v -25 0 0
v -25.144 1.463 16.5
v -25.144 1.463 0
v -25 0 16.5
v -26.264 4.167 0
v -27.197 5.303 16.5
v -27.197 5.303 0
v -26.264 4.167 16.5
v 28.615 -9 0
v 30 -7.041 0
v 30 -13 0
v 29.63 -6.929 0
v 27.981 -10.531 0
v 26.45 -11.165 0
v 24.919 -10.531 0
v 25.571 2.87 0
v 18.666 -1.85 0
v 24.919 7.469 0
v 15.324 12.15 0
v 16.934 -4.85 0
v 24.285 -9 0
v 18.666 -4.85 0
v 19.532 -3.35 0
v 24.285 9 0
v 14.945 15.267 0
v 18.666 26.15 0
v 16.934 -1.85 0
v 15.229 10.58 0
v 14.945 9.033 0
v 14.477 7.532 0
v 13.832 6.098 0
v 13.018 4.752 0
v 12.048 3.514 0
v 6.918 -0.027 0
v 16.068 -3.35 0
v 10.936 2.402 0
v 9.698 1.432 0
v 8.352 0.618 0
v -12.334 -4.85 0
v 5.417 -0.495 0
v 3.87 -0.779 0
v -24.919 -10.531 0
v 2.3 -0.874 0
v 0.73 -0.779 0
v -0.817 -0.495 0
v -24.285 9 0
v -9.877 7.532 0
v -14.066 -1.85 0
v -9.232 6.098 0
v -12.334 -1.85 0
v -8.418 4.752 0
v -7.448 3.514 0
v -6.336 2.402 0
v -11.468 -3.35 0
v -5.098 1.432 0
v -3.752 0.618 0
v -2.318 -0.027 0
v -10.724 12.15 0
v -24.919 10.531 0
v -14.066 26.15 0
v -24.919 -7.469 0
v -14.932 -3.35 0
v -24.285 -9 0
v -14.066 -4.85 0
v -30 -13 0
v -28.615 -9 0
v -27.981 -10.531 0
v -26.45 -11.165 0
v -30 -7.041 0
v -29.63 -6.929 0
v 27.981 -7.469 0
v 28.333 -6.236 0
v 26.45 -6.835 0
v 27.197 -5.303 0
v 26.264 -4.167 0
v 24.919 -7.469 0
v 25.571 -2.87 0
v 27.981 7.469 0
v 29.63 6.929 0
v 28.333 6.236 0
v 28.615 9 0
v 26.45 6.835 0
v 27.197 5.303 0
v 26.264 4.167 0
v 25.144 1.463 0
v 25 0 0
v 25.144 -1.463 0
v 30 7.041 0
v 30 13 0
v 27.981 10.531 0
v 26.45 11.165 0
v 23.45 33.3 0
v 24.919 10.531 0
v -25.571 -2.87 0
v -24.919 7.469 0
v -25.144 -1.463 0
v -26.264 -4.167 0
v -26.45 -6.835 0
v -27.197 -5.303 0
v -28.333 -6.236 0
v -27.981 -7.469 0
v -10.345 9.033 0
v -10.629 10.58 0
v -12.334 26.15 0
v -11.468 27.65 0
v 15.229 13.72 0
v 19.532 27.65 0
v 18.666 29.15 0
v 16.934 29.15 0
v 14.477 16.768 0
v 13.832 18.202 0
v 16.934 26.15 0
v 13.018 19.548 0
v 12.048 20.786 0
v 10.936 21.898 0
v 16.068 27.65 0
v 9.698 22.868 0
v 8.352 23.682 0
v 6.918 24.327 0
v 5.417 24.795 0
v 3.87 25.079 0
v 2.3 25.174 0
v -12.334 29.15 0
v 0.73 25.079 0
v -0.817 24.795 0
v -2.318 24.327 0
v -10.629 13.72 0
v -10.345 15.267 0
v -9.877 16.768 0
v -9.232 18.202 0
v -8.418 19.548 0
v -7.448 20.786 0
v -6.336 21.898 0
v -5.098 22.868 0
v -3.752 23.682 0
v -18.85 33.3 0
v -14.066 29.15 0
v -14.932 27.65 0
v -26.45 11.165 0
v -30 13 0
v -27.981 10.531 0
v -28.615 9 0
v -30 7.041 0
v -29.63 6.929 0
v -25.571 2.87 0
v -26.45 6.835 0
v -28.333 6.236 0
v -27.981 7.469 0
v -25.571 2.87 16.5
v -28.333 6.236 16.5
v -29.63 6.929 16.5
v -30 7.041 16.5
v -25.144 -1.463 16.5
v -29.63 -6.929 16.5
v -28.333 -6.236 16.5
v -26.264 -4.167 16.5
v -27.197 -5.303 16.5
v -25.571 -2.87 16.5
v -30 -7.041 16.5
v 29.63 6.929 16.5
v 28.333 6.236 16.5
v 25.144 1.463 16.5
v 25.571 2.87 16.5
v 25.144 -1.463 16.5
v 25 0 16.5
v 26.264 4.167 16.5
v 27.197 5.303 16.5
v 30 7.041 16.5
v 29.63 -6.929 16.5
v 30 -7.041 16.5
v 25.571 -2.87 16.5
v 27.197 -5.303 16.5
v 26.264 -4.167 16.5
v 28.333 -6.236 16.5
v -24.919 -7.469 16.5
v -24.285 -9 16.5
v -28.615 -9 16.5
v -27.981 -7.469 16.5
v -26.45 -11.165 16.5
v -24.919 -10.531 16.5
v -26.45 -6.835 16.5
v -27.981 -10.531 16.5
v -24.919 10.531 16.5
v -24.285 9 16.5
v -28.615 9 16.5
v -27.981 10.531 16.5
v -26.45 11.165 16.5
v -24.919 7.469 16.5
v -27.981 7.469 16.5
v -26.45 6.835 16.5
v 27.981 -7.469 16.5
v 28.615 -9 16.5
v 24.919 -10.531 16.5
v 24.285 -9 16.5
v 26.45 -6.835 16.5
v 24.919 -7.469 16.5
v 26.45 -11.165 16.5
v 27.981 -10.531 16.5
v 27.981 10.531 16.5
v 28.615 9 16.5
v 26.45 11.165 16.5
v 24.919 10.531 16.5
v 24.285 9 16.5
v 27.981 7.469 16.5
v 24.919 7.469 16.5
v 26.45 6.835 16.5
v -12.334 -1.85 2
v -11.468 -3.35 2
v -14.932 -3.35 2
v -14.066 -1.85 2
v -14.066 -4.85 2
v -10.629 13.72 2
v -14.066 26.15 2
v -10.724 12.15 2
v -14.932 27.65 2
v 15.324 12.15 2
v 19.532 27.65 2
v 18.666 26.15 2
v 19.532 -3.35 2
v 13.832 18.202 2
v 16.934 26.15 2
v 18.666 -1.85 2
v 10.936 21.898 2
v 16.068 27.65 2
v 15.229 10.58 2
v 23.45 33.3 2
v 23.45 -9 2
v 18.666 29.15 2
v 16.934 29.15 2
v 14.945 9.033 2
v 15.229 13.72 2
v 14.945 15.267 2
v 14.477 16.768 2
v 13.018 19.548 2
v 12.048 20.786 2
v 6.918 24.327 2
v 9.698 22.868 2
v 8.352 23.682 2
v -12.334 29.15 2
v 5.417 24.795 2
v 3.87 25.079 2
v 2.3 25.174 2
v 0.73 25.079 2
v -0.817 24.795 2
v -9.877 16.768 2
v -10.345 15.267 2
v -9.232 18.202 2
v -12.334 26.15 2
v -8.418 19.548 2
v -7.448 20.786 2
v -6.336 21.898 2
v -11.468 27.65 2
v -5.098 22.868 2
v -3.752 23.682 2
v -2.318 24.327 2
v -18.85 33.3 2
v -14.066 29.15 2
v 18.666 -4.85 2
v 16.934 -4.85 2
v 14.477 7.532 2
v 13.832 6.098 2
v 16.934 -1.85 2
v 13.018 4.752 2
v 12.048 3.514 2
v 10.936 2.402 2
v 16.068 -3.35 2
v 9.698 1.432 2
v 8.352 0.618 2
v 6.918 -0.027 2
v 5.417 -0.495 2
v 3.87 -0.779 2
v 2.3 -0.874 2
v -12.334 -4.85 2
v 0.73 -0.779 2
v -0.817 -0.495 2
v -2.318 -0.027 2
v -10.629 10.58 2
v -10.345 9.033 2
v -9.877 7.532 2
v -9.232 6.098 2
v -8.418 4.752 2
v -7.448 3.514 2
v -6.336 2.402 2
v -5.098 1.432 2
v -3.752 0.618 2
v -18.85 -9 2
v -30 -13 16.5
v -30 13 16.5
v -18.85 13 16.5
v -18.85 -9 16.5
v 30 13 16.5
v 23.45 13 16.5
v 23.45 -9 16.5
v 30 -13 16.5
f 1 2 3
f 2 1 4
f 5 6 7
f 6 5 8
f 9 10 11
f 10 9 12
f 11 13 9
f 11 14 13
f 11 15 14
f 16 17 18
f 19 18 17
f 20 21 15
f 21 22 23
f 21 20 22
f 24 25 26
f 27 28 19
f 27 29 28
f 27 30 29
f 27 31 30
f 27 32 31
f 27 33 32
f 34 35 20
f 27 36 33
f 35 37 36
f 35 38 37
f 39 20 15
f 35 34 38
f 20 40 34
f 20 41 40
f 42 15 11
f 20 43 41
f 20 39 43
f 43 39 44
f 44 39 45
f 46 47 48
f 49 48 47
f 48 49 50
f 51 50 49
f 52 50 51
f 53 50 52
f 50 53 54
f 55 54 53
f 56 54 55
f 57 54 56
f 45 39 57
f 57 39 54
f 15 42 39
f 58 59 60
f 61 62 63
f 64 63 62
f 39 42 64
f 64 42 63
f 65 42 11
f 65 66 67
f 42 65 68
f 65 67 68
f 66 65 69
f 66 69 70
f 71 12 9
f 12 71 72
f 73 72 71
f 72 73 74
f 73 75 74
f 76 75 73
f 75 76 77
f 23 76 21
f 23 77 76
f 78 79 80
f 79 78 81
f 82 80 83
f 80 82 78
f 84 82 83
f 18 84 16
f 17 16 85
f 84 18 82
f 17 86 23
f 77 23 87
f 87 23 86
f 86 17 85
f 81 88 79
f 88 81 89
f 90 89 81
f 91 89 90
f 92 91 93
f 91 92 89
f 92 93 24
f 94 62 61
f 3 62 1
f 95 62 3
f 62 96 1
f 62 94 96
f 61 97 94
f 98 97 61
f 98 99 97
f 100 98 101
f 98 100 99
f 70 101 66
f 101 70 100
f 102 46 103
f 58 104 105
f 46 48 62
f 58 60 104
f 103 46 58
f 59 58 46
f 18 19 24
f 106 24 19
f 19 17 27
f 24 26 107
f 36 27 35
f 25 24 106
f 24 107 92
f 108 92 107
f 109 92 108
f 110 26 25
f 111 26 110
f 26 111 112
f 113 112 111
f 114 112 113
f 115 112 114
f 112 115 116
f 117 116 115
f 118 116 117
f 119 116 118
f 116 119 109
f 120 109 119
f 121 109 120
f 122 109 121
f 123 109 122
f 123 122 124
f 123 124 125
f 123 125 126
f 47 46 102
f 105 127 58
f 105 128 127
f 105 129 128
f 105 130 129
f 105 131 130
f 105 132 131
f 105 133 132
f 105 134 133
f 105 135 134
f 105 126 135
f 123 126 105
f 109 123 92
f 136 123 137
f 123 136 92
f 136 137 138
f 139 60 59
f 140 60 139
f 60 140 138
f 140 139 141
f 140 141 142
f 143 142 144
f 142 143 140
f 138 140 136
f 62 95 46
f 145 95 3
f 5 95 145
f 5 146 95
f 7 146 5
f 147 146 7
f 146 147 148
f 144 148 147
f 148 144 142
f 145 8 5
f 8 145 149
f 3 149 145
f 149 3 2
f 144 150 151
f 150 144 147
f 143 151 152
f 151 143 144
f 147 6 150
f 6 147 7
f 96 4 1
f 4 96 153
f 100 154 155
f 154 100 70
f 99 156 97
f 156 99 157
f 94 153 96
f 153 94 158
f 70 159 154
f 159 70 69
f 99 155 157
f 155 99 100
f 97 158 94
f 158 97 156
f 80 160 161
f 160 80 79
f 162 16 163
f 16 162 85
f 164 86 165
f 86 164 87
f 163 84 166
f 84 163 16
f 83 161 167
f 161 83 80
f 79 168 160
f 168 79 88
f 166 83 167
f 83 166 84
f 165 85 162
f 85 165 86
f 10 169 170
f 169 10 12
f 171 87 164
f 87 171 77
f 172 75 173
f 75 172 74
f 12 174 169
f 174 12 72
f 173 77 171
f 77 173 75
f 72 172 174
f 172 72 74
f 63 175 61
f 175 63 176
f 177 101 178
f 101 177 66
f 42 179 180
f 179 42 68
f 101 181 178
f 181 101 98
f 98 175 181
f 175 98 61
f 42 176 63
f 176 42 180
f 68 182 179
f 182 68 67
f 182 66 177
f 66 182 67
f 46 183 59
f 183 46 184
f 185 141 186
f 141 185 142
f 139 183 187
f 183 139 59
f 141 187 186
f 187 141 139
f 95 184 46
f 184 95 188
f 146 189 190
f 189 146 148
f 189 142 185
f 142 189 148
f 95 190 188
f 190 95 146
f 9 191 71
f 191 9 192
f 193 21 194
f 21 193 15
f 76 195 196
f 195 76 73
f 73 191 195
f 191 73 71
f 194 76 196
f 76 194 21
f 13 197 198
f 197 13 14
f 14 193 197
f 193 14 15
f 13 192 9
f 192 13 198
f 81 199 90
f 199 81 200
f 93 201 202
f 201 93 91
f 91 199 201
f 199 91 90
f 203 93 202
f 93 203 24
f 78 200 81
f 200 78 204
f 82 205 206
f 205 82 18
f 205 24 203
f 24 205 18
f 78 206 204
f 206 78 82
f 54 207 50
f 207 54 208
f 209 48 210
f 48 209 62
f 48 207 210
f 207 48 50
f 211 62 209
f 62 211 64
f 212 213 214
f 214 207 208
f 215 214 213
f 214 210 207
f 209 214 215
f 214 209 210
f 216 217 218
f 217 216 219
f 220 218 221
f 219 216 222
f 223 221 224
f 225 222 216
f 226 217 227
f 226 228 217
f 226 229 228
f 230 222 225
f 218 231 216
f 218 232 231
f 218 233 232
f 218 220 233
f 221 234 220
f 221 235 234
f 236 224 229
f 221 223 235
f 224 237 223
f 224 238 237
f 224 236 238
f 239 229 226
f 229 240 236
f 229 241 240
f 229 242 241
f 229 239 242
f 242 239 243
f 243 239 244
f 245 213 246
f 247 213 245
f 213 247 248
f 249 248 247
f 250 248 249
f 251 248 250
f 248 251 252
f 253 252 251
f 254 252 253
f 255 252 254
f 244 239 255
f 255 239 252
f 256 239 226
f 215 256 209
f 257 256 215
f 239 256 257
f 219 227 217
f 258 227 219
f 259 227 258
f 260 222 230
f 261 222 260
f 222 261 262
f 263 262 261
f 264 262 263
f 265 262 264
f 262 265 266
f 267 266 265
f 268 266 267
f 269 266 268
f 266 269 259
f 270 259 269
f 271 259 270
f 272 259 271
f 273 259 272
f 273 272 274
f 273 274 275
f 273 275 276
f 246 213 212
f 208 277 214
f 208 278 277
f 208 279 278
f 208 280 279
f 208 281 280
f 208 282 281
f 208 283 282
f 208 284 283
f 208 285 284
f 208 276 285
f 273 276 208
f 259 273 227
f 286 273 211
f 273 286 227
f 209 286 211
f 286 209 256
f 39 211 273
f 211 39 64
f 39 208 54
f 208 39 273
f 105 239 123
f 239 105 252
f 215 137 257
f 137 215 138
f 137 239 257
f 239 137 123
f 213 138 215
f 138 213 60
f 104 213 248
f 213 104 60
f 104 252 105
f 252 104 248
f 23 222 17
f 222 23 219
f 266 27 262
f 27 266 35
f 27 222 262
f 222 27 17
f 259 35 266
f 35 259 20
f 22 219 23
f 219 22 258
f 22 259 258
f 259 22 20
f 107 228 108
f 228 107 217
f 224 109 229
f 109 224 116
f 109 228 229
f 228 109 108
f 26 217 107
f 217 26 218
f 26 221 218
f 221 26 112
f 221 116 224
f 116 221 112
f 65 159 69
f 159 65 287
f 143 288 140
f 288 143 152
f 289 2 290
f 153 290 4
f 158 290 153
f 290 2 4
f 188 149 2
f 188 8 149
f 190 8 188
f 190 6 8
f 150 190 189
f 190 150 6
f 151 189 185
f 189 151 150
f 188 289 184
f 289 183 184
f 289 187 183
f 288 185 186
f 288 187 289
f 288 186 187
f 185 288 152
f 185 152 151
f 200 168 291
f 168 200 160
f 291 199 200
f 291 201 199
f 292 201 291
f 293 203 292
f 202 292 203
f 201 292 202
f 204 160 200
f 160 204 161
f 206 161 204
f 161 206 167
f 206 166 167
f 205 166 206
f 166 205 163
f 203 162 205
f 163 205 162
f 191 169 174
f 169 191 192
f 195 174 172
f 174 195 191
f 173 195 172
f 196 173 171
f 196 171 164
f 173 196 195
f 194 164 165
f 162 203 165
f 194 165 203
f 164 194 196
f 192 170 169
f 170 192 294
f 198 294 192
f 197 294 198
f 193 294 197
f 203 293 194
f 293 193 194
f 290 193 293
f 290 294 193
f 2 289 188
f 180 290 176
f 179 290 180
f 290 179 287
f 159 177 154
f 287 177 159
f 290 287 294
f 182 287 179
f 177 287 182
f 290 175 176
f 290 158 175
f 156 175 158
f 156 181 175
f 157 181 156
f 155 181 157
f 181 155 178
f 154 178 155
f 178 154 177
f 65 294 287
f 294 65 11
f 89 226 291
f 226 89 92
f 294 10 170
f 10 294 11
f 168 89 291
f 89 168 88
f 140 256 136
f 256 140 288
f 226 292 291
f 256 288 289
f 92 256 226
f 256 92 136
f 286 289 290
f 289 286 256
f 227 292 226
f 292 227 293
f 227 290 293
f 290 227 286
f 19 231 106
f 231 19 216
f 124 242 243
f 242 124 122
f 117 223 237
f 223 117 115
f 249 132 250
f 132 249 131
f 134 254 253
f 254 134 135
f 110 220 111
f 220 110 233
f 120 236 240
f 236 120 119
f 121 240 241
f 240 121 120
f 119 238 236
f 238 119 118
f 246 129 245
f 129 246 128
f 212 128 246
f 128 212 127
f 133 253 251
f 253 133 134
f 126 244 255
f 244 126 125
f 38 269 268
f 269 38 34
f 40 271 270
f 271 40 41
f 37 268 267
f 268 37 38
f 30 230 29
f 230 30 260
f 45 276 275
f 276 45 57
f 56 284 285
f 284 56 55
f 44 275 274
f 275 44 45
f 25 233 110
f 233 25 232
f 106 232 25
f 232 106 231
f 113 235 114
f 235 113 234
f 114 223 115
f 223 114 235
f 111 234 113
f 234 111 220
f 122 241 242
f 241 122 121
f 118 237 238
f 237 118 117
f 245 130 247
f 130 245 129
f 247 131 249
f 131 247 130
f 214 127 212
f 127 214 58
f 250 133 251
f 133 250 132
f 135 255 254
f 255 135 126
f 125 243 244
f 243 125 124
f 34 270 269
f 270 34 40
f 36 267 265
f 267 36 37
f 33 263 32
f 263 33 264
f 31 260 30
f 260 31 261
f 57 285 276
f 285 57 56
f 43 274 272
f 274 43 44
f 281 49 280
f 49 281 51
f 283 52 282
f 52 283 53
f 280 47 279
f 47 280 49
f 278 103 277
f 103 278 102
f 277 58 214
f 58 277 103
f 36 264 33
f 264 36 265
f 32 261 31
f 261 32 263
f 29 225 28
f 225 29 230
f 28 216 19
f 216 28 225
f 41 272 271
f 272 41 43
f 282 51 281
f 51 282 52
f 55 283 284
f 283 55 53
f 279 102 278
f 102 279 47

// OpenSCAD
// file: ../../polyhole.scad
// The Cylinder is dead! Long live the Cylinder!
// A module for a polyhole by radius, based on Nophead's work.

module polyhole(h, r, cent = false)
{
    n = max(round(4 * r), 3);
    cylinder(h = h, r = r / cos(180 / n), $fn = n, center = cent);
}
// main file
use<../../polyhole.scad>

CarriageMotorMount();

module CarriageMotorMount()
{
    difference()
    {
        union()
        {
            hull()
            {
                translate([0, 0, (25+2-(5+5)-0.5)/2])
                    cube([60, 20+6, 25+2-(5+5)-0.5], center = true);
                translate([4.6/2, (42.3)/2-(20+6)/2+4, (2)/2])
                    cube([42.3, 42.3, 2], center = true);
            }
        }
        translate([4.6/2, (42.3)/2-(20+6)/2+4, (25)/2+2])
            cube([42.3, 42.3, 25], center = true);
        for(i = [-1 : 2 : 1])
            translate([i*65/2, 0, 0])
                cylinder(h = 25+2, r = 15/2, $fn = 32);
        for(i = [-1 : 2 : 1])
            for(j = [-1 : 2 : 1])
                translate([i*((42.3+4.6)/2+3), j*9, 0])
                    polyhole(25+2-(5+5), 2);
        translate([4.6/2, (42.3)/2-(20+6)/2+4, 0])
            polyhole(2, 11+2);
        for(i = [-1 : 2 : 1])
            for(j = [-1 : 2 : 1])
                translate([i*31/2+4.6/2, -(20+6)/2+4+42.3/2+j*31/2, 0])
                    polyhole(2, 1.5);
    }
}
